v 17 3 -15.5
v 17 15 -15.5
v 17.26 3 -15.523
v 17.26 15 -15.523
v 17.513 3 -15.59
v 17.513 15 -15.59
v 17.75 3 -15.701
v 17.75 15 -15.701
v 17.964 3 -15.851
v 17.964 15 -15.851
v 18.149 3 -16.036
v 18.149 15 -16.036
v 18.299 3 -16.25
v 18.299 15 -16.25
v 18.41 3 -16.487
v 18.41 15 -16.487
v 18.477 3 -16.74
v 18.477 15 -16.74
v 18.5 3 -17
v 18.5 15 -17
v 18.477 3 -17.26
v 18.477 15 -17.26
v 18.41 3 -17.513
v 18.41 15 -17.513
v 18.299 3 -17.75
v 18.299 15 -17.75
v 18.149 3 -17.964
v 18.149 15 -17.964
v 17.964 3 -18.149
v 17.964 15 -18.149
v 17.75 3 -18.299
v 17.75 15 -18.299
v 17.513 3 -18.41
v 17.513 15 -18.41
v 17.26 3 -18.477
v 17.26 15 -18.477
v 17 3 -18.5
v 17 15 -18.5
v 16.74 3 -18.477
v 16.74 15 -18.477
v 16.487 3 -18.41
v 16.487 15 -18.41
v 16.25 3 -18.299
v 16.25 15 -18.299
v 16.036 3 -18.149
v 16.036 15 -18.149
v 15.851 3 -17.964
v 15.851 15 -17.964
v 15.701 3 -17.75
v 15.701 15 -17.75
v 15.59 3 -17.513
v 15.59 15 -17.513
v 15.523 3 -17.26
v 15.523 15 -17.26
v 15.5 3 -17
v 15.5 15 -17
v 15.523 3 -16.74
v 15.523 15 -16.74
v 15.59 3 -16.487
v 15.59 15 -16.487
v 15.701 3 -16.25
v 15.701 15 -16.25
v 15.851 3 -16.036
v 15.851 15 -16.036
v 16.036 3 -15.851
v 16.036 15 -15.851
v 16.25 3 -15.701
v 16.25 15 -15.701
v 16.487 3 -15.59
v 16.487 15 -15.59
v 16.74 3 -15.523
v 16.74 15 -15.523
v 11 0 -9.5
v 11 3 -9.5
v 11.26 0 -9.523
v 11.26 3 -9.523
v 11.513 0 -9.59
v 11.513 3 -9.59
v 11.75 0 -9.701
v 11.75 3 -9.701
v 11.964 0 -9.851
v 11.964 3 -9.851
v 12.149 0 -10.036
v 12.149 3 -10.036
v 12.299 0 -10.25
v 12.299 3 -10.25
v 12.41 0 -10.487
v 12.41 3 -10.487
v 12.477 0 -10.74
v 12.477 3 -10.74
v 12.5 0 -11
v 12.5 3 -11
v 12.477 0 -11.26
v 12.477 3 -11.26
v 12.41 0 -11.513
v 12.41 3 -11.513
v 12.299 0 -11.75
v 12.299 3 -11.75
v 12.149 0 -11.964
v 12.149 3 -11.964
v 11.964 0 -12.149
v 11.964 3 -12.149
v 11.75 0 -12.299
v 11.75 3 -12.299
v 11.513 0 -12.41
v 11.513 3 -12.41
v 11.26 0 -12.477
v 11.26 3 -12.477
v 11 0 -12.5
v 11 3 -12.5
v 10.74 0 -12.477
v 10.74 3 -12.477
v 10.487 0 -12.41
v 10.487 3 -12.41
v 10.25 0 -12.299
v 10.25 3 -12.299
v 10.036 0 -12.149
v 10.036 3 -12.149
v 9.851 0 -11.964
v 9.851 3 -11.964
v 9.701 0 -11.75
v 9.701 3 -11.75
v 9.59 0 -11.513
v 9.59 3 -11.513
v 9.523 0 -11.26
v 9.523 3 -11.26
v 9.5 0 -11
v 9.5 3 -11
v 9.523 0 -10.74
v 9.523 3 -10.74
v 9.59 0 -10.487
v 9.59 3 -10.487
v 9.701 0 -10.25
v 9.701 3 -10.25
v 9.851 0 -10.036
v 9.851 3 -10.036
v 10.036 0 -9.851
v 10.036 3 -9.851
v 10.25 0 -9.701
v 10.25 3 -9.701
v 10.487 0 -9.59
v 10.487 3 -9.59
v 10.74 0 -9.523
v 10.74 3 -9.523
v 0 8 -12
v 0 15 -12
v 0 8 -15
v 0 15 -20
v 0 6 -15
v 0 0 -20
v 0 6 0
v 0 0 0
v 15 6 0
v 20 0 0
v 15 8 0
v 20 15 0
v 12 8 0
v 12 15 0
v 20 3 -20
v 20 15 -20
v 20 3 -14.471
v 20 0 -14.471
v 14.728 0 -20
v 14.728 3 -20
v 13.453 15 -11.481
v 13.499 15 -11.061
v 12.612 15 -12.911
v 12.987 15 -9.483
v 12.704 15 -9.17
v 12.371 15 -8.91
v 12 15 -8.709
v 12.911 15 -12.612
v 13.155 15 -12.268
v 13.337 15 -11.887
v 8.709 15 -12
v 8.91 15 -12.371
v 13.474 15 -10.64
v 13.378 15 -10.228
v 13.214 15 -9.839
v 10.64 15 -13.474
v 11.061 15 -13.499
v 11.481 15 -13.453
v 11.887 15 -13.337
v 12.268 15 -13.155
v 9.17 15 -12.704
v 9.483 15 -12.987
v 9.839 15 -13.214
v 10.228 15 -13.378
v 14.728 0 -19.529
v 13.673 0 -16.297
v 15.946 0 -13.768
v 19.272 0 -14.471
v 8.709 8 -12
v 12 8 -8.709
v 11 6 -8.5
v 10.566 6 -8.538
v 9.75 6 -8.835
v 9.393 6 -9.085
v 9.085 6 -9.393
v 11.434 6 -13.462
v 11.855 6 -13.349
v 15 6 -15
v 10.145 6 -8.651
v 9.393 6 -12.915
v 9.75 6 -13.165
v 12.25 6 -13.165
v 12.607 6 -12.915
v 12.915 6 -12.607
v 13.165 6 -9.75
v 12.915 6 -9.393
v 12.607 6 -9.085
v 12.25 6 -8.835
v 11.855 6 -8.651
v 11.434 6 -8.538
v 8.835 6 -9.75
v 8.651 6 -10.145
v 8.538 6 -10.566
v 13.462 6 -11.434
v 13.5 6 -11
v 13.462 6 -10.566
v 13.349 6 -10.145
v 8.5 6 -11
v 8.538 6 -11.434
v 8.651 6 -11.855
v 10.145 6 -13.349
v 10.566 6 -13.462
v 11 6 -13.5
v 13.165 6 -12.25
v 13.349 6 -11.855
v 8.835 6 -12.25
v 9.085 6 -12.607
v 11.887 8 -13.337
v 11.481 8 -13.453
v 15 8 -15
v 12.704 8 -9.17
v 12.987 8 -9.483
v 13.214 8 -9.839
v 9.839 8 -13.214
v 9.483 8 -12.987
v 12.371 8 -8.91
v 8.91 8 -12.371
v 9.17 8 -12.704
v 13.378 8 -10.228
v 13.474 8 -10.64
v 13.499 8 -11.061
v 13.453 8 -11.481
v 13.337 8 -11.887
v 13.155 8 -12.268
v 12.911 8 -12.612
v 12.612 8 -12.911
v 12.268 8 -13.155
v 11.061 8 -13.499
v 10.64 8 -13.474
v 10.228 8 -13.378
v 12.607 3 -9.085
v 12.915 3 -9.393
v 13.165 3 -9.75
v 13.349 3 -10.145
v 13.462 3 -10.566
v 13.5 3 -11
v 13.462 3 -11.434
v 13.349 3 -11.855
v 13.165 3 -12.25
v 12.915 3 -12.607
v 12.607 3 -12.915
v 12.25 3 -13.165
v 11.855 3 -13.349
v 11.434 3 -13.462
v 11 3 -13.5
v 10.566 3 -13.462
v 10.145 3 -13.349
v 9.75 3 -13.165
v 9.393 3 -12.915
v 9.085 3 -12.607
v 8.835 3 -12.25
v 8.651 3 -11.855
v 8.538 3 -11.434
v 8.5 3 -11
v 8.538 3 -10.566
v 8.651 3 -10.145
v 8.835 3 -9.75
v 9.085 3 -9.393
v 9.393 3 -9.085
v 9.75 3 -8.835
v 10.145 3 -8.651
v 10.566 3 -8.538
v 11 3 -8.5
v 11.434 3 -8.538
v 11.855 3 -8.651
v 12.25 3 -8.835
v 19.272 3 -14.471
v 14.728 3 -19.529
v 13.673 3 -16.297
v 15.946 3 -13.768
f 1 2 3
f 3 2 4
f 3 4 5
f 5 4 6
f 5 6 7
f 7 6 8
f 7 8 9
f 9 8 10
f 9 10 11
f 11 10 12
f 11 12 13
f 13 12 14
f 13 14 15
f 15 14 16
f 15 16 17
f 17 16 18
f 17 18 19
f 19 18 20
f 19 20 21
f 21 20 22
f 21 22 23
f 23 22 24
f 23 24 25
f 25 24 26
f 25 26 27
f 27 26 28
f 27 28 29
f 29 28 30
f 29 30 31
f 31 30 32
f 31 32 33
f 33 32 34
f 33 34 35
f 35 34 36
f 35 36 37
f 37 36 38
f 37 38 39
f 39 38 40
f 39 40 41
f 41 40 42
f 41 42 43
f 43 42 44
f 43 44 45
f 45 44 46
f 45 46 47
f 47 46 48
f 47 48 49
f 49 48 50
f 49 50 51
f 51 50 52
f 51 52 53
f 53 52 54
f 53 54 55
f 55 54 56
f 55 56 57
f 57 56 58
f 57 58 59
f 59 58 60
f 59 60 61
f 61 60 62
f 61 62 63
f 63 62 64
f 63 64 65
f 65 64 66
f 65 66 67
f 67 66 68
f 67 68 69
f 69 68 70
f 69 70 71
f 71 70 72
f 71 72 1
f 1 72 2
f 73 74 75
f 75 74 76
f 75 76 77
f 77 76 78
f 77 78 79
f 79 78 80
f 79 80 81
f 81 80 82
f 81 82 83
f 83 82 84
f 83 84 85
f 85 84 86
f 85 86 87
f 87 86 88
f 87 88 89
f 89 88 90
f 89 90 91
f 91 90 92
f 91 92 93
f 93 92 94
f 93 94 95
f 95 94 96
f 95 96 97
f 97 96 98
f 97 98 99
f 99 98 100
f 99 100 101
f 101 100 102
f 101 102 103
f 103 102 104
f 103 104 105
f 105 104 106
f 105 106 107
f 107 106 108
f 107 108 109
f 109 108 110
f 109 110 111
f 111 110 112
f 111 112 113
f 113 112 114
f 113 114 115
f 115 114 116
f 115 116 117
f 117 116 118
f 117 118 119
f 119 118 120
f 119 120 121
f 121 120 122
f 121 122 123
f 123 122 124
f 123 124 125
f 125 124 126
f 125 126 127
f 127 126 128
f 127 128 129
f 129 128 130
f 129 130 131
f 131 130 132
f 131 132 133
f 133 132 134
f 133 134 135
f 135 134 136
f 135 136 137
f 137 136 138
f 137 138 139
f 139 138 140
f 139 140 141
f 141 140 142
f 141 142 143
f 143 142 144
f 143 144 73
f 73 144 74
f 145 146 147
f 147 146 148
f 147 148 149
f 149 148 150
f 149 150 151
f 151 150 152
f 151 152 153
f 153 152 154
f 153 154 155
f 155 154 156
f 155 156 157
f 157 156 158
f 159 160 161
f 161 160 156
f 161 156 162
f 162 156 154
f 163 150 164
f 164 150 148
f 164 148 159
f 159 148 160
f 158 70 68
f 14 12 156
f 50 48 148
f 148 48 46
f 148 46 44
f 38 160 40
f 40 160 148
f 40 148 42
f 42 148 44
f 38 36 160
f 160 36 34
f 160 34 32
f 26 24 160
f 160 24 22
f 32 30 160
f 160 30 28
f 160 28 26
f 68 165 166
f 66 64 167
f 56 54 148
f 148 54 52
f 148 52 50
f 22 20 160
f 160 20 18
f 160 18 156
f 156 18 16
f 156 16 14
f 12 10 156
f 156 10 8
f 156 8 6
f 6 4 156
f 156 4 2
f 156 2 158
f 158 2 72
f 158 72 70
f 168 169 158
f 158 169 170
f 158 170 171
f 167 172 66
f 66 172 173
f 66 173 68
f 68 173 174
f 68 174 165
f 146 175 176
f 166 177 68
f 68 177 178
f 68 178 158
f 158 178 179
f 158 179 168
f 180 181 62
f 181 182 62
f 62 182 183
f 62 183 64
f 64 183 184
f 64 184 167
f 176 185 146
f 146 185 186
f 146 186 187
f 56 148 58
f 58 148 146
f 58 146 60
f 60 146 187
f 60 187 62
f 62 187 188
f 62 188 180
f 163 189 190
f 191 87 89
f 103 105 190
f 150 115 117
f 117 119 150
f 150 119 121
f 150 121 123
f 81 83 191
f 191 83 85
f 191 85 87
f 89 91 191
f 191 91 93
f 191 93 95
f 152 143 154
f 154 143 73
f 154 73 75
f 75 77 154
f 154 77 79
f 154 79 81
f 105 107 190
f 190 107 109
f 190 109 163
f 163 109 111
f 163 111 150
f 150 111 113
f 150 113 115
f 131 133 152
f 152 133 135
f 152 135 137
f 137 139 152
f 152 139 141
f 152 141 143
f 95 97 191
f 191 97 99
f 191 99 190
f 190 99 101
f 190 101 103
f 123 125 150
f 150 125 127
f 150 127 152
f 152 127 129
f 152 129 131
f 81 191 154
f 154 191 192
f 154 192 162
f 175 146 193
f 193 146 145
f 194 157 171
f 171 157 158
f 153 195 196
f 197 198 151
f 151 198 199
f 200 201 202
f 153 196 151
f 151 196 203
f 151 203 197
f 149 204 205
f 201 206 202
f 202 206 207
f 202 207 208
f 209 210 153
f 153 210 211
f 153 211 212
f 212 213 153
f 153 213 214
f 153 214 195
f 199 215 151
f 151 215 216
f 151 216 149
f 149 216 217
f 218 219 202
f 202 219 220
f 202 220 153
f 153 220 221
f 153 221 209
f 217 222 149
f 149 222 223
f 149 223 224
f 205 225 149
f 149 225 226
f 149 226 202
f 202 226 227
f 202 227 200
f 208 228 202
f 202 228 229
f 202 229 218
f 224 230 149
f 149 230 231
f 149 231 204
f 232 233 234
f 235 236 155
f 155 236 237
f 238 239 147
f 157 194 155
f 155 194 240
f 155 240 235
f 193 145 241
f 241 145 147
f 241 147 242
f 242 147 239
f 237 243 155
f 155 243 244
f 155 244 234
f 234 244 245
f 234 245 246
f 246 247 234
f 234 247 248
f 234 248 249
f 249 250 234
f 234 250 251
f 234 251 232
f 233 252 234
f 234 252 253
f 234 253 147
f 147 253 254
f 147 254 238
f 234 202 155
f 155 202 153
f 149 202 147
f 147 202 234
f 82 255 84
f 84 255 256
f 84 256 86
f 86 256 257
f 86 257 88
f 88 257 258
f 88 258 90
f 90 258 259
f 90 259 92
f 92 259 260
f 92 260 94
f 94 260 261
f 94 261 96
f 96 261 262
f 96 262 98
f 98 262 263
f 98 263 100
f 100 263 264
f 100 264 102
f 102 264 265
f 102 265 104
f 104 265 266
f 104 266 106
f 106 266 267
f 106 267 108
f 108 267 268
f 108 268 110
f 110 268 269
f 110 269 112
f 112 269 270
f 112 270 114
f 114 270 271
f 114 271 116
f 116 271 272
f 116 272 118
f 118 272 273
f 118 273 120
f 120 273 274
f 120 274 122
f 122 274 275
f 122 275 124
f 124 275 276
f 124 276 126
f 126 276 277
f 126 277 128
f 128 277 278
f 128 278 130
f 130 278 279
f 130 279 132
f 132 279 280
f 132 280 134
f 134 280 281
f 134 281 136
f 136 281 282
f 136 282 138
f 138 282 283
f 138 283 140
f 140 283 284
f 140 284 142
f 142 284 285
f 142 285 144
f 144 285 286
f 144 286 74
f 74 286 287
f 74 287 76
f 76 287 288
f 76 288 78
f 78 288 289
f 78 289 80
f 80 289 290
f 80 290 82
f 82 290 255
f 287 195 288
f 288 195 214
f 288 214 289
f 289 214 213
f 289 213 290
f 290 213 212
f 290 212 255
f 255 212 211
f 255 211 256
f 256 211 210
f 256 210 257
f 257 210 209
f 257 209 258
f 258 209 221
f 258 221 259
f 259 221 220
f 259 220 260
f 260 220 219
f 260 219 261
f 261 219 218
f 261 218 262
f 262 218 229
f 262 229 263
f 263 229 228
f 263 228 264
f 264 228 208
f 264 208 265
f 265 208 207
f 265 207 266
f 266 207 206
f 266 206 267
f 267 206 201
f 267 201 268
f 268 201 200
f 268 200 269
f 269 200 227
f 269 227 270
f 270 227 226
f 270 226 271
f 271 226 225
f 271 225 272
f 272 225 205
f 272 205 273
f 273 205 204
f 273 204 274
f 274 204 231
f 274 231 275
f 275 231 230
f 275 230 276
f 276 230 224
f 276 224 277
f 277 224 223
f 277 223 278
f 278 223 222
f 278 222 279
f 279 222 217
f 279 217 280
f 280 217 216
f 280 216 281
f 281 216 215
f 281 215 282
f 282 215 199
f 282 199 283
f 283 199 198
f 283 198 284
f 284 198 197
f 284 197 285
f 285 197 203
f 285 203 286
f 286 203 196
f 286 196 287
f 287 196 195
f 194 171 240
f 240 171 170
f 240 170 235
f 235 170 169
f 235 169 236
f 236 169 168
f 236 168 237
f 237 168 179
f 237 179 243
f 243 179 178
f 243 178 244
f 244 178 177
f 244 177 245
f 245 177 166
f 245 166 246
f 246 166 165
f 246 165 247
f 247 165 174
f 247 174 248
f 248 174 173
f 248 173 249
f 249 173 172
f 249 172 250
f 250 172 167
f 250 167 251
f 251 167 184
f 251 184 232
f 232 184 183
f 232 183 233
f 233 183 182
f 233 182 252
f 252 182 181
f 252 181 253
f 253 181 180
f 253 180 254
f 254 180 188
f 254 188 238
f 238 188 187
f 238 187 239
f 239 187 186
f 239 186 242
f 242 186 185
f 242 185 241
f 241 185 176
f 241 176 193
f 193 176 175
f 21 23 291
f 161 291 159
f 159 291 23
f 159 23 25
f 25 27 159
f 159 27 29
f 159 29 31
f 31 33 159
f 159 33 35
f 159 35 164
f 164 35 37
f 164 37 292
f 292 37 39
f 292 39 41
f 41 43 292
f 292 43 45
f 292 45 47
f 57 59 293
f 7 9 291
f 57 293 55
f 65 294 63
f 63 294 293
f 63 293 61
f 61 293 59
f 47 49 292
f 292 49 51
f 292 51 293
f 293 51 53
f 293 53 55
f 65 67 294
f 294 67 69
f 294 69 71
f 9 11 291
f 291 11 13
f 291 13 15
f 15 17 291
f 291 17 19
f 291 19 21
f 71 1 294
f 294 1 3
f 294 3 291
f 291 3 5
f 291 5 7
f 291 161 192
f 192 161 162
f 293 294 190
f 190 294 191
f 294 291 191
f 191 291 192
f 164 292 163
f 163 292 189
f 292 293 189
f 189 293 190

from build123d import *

# Parameters (mm, degrees)
SKETCH1_W           = 20
SKETCH1_H           = 20
BOSS_EXTRUDE1_DEPTH = 15
SKETCH2_W           = 12
SKETCH2_H           = 12
CUT_EXTRUDE1_DEPTH  = 9
SKETCH3_W           = 3
SKETCH3_H           = 2
CUT_EXTRUDE2_DEPTH  = 15
SKETCH4_W           = 3
SKETCH4_H           = 2
CUT_EXTRUDE3_DEPTH  = 15
SKETCH5_R           = 1.5
CUT_EXTRUDE4_DEPTH  = 15
SKETCH6_R           = 2.5
CUT_EXTRUDE5_DEPTH  = 12
CUT_EXTRUDE6_DEPTH  = 3
CUT_EXTRUDE7_DEPTH  = 3
CUT_EXTRUDE8_DEPTH  = 3


with BuildPart() as part:
    # Sketch1 → Boss-Extrude1 (new body)
    with BuildSketch(Plane(origin=(0, 0, 0), x_dir=(1, 0, 0), z_dir=(0, 1, 0))):
        with Locations((10, 10)):
            Rectangle(SKETCH1_W, SKETCH1_H)
    extrude(amount=BOSS_EXTRUDE1_DEPTH)

    # Sketch2 → Cut-Extrude1 (cut)
    with BuildSketch(Plane(origin=(0, 15, 0), x_dir=(1, 0, 0), z_dir=(0, 1, 0))):
        with Locations((6, 6)):
            Rectangle(SKETCH2_W, SKETCH2_H)
    extrude(amount=-CUT_EXTRUDE1_DEPTH, mode=Mode.SUBTRACT)

    # Sketch3 → Cut-Extrude2 (cut)
    with BuildSketch(Plane.XY):
        with Locations((13.5, 7)):
            Rectangle(SKETCH3_W, SKETCH3_H)
    extrude(amount=-CUT_EXTRUDE2_DEPTH, mode=Mode.SUBTRACT)

    # Sketch4 → Cut-Extrude3 (cut)
    with BuildSketch(Plane.ZY):
        with Locations((-13.5, 7)):
            Rectangle(SKETCH4_W, SKETCH4_H)
    extrude(amount=-CUT_EXTRUDE3_DEPTH, mode=Mode.SUBTRACT)

    # Sketch5 → Cut-Extrude4 (cut)
    with BuildSketch(Plane(origin=(0, 15, 0), x_dir=(1, 0, 0), z_dir=(0, 1, 0))):
        with Locations(Location((11, 11, 0), (0, 0, 270))):
            Circle(SKETCH5_R)
        with Locations(Location((17, 17, 0), (0, 0, 270))):
            Circle(SKETCH5_R)
    extrude(amount=-CUT_EXTRUDE4_DEPTH, mode=Mode.SUBTRACT)

    # Sketch6 → Cut-Extrude5 (cut)
    with BuildSketch(Plane(origin=(0, 15, 0), x_dir=(1, 0, 0), z_dir=(0, 1, 0))):
        with Locations(Location((11, 11, 0), (0, 0, 270))):
            Circle(SKETCH6_R)
    extrude(amount=-CUT_EXTRUDE5_DEPTH, mode=Mode.SUBTRACT)

    # Sketch7 → Cut-Extrude6 (cut)
    with BuildSketch(Plane(origin=(0, 0, 0), x_dir=(-1, 0, 0), z_dir=(0, -1, 0))):
        Polygon((-19.1, 14.71964915), (-16.075158234, 14.041171227), (-13.975158234, 16.321522077), (-14.9, 19.28035085), (-17.924841766, 19.958828773), (-20.024841766, 17.678477923), align=None)
    extrude(amount=-CUT_EXTRUDE6_DEPTH, mode=Mode.SUBTRACT)

    # Sketch8 → Cut-Extrude7 (cut)
    with BuildSketch(Plane(origin=(0, 0, 0), x_dir=(-1, 0, 0), z_dir=(0, -1, 0))):
        Polygon((-20, 14.71964915), (-19.1, 14.71964915), (-14.9, 19.28035085), (-14.9, 20), (-20, 20), align=None)
    extrude(amount=-CUT_EXTRUDE7_DEPTH, mode=Mode.SUBTRACT)

    # Sketch9 → Cut-Extrude8 (cut)
    with BuildSketch(Plane(origin=(0, 0, 0), x_dir=(-1, 0, 0), z_dir=(0, -1, 0))):
        Polygon((-13.673474415, 16.296986821), (-14.727909935, 19.529349074), (-14.727909935, 20), (-18.05443552, 20.232362253), (-20.326525585, 17.703013179), (-20.94475972, 14.470650926), (-19.272090065, 14.470650926), (-15.94556448, 13.767637747), align=None)
    extrude(amount=-CUT_EXTRUDE8_DEPTH, mode=Mode.SUBTRACT)


solid = part.part
